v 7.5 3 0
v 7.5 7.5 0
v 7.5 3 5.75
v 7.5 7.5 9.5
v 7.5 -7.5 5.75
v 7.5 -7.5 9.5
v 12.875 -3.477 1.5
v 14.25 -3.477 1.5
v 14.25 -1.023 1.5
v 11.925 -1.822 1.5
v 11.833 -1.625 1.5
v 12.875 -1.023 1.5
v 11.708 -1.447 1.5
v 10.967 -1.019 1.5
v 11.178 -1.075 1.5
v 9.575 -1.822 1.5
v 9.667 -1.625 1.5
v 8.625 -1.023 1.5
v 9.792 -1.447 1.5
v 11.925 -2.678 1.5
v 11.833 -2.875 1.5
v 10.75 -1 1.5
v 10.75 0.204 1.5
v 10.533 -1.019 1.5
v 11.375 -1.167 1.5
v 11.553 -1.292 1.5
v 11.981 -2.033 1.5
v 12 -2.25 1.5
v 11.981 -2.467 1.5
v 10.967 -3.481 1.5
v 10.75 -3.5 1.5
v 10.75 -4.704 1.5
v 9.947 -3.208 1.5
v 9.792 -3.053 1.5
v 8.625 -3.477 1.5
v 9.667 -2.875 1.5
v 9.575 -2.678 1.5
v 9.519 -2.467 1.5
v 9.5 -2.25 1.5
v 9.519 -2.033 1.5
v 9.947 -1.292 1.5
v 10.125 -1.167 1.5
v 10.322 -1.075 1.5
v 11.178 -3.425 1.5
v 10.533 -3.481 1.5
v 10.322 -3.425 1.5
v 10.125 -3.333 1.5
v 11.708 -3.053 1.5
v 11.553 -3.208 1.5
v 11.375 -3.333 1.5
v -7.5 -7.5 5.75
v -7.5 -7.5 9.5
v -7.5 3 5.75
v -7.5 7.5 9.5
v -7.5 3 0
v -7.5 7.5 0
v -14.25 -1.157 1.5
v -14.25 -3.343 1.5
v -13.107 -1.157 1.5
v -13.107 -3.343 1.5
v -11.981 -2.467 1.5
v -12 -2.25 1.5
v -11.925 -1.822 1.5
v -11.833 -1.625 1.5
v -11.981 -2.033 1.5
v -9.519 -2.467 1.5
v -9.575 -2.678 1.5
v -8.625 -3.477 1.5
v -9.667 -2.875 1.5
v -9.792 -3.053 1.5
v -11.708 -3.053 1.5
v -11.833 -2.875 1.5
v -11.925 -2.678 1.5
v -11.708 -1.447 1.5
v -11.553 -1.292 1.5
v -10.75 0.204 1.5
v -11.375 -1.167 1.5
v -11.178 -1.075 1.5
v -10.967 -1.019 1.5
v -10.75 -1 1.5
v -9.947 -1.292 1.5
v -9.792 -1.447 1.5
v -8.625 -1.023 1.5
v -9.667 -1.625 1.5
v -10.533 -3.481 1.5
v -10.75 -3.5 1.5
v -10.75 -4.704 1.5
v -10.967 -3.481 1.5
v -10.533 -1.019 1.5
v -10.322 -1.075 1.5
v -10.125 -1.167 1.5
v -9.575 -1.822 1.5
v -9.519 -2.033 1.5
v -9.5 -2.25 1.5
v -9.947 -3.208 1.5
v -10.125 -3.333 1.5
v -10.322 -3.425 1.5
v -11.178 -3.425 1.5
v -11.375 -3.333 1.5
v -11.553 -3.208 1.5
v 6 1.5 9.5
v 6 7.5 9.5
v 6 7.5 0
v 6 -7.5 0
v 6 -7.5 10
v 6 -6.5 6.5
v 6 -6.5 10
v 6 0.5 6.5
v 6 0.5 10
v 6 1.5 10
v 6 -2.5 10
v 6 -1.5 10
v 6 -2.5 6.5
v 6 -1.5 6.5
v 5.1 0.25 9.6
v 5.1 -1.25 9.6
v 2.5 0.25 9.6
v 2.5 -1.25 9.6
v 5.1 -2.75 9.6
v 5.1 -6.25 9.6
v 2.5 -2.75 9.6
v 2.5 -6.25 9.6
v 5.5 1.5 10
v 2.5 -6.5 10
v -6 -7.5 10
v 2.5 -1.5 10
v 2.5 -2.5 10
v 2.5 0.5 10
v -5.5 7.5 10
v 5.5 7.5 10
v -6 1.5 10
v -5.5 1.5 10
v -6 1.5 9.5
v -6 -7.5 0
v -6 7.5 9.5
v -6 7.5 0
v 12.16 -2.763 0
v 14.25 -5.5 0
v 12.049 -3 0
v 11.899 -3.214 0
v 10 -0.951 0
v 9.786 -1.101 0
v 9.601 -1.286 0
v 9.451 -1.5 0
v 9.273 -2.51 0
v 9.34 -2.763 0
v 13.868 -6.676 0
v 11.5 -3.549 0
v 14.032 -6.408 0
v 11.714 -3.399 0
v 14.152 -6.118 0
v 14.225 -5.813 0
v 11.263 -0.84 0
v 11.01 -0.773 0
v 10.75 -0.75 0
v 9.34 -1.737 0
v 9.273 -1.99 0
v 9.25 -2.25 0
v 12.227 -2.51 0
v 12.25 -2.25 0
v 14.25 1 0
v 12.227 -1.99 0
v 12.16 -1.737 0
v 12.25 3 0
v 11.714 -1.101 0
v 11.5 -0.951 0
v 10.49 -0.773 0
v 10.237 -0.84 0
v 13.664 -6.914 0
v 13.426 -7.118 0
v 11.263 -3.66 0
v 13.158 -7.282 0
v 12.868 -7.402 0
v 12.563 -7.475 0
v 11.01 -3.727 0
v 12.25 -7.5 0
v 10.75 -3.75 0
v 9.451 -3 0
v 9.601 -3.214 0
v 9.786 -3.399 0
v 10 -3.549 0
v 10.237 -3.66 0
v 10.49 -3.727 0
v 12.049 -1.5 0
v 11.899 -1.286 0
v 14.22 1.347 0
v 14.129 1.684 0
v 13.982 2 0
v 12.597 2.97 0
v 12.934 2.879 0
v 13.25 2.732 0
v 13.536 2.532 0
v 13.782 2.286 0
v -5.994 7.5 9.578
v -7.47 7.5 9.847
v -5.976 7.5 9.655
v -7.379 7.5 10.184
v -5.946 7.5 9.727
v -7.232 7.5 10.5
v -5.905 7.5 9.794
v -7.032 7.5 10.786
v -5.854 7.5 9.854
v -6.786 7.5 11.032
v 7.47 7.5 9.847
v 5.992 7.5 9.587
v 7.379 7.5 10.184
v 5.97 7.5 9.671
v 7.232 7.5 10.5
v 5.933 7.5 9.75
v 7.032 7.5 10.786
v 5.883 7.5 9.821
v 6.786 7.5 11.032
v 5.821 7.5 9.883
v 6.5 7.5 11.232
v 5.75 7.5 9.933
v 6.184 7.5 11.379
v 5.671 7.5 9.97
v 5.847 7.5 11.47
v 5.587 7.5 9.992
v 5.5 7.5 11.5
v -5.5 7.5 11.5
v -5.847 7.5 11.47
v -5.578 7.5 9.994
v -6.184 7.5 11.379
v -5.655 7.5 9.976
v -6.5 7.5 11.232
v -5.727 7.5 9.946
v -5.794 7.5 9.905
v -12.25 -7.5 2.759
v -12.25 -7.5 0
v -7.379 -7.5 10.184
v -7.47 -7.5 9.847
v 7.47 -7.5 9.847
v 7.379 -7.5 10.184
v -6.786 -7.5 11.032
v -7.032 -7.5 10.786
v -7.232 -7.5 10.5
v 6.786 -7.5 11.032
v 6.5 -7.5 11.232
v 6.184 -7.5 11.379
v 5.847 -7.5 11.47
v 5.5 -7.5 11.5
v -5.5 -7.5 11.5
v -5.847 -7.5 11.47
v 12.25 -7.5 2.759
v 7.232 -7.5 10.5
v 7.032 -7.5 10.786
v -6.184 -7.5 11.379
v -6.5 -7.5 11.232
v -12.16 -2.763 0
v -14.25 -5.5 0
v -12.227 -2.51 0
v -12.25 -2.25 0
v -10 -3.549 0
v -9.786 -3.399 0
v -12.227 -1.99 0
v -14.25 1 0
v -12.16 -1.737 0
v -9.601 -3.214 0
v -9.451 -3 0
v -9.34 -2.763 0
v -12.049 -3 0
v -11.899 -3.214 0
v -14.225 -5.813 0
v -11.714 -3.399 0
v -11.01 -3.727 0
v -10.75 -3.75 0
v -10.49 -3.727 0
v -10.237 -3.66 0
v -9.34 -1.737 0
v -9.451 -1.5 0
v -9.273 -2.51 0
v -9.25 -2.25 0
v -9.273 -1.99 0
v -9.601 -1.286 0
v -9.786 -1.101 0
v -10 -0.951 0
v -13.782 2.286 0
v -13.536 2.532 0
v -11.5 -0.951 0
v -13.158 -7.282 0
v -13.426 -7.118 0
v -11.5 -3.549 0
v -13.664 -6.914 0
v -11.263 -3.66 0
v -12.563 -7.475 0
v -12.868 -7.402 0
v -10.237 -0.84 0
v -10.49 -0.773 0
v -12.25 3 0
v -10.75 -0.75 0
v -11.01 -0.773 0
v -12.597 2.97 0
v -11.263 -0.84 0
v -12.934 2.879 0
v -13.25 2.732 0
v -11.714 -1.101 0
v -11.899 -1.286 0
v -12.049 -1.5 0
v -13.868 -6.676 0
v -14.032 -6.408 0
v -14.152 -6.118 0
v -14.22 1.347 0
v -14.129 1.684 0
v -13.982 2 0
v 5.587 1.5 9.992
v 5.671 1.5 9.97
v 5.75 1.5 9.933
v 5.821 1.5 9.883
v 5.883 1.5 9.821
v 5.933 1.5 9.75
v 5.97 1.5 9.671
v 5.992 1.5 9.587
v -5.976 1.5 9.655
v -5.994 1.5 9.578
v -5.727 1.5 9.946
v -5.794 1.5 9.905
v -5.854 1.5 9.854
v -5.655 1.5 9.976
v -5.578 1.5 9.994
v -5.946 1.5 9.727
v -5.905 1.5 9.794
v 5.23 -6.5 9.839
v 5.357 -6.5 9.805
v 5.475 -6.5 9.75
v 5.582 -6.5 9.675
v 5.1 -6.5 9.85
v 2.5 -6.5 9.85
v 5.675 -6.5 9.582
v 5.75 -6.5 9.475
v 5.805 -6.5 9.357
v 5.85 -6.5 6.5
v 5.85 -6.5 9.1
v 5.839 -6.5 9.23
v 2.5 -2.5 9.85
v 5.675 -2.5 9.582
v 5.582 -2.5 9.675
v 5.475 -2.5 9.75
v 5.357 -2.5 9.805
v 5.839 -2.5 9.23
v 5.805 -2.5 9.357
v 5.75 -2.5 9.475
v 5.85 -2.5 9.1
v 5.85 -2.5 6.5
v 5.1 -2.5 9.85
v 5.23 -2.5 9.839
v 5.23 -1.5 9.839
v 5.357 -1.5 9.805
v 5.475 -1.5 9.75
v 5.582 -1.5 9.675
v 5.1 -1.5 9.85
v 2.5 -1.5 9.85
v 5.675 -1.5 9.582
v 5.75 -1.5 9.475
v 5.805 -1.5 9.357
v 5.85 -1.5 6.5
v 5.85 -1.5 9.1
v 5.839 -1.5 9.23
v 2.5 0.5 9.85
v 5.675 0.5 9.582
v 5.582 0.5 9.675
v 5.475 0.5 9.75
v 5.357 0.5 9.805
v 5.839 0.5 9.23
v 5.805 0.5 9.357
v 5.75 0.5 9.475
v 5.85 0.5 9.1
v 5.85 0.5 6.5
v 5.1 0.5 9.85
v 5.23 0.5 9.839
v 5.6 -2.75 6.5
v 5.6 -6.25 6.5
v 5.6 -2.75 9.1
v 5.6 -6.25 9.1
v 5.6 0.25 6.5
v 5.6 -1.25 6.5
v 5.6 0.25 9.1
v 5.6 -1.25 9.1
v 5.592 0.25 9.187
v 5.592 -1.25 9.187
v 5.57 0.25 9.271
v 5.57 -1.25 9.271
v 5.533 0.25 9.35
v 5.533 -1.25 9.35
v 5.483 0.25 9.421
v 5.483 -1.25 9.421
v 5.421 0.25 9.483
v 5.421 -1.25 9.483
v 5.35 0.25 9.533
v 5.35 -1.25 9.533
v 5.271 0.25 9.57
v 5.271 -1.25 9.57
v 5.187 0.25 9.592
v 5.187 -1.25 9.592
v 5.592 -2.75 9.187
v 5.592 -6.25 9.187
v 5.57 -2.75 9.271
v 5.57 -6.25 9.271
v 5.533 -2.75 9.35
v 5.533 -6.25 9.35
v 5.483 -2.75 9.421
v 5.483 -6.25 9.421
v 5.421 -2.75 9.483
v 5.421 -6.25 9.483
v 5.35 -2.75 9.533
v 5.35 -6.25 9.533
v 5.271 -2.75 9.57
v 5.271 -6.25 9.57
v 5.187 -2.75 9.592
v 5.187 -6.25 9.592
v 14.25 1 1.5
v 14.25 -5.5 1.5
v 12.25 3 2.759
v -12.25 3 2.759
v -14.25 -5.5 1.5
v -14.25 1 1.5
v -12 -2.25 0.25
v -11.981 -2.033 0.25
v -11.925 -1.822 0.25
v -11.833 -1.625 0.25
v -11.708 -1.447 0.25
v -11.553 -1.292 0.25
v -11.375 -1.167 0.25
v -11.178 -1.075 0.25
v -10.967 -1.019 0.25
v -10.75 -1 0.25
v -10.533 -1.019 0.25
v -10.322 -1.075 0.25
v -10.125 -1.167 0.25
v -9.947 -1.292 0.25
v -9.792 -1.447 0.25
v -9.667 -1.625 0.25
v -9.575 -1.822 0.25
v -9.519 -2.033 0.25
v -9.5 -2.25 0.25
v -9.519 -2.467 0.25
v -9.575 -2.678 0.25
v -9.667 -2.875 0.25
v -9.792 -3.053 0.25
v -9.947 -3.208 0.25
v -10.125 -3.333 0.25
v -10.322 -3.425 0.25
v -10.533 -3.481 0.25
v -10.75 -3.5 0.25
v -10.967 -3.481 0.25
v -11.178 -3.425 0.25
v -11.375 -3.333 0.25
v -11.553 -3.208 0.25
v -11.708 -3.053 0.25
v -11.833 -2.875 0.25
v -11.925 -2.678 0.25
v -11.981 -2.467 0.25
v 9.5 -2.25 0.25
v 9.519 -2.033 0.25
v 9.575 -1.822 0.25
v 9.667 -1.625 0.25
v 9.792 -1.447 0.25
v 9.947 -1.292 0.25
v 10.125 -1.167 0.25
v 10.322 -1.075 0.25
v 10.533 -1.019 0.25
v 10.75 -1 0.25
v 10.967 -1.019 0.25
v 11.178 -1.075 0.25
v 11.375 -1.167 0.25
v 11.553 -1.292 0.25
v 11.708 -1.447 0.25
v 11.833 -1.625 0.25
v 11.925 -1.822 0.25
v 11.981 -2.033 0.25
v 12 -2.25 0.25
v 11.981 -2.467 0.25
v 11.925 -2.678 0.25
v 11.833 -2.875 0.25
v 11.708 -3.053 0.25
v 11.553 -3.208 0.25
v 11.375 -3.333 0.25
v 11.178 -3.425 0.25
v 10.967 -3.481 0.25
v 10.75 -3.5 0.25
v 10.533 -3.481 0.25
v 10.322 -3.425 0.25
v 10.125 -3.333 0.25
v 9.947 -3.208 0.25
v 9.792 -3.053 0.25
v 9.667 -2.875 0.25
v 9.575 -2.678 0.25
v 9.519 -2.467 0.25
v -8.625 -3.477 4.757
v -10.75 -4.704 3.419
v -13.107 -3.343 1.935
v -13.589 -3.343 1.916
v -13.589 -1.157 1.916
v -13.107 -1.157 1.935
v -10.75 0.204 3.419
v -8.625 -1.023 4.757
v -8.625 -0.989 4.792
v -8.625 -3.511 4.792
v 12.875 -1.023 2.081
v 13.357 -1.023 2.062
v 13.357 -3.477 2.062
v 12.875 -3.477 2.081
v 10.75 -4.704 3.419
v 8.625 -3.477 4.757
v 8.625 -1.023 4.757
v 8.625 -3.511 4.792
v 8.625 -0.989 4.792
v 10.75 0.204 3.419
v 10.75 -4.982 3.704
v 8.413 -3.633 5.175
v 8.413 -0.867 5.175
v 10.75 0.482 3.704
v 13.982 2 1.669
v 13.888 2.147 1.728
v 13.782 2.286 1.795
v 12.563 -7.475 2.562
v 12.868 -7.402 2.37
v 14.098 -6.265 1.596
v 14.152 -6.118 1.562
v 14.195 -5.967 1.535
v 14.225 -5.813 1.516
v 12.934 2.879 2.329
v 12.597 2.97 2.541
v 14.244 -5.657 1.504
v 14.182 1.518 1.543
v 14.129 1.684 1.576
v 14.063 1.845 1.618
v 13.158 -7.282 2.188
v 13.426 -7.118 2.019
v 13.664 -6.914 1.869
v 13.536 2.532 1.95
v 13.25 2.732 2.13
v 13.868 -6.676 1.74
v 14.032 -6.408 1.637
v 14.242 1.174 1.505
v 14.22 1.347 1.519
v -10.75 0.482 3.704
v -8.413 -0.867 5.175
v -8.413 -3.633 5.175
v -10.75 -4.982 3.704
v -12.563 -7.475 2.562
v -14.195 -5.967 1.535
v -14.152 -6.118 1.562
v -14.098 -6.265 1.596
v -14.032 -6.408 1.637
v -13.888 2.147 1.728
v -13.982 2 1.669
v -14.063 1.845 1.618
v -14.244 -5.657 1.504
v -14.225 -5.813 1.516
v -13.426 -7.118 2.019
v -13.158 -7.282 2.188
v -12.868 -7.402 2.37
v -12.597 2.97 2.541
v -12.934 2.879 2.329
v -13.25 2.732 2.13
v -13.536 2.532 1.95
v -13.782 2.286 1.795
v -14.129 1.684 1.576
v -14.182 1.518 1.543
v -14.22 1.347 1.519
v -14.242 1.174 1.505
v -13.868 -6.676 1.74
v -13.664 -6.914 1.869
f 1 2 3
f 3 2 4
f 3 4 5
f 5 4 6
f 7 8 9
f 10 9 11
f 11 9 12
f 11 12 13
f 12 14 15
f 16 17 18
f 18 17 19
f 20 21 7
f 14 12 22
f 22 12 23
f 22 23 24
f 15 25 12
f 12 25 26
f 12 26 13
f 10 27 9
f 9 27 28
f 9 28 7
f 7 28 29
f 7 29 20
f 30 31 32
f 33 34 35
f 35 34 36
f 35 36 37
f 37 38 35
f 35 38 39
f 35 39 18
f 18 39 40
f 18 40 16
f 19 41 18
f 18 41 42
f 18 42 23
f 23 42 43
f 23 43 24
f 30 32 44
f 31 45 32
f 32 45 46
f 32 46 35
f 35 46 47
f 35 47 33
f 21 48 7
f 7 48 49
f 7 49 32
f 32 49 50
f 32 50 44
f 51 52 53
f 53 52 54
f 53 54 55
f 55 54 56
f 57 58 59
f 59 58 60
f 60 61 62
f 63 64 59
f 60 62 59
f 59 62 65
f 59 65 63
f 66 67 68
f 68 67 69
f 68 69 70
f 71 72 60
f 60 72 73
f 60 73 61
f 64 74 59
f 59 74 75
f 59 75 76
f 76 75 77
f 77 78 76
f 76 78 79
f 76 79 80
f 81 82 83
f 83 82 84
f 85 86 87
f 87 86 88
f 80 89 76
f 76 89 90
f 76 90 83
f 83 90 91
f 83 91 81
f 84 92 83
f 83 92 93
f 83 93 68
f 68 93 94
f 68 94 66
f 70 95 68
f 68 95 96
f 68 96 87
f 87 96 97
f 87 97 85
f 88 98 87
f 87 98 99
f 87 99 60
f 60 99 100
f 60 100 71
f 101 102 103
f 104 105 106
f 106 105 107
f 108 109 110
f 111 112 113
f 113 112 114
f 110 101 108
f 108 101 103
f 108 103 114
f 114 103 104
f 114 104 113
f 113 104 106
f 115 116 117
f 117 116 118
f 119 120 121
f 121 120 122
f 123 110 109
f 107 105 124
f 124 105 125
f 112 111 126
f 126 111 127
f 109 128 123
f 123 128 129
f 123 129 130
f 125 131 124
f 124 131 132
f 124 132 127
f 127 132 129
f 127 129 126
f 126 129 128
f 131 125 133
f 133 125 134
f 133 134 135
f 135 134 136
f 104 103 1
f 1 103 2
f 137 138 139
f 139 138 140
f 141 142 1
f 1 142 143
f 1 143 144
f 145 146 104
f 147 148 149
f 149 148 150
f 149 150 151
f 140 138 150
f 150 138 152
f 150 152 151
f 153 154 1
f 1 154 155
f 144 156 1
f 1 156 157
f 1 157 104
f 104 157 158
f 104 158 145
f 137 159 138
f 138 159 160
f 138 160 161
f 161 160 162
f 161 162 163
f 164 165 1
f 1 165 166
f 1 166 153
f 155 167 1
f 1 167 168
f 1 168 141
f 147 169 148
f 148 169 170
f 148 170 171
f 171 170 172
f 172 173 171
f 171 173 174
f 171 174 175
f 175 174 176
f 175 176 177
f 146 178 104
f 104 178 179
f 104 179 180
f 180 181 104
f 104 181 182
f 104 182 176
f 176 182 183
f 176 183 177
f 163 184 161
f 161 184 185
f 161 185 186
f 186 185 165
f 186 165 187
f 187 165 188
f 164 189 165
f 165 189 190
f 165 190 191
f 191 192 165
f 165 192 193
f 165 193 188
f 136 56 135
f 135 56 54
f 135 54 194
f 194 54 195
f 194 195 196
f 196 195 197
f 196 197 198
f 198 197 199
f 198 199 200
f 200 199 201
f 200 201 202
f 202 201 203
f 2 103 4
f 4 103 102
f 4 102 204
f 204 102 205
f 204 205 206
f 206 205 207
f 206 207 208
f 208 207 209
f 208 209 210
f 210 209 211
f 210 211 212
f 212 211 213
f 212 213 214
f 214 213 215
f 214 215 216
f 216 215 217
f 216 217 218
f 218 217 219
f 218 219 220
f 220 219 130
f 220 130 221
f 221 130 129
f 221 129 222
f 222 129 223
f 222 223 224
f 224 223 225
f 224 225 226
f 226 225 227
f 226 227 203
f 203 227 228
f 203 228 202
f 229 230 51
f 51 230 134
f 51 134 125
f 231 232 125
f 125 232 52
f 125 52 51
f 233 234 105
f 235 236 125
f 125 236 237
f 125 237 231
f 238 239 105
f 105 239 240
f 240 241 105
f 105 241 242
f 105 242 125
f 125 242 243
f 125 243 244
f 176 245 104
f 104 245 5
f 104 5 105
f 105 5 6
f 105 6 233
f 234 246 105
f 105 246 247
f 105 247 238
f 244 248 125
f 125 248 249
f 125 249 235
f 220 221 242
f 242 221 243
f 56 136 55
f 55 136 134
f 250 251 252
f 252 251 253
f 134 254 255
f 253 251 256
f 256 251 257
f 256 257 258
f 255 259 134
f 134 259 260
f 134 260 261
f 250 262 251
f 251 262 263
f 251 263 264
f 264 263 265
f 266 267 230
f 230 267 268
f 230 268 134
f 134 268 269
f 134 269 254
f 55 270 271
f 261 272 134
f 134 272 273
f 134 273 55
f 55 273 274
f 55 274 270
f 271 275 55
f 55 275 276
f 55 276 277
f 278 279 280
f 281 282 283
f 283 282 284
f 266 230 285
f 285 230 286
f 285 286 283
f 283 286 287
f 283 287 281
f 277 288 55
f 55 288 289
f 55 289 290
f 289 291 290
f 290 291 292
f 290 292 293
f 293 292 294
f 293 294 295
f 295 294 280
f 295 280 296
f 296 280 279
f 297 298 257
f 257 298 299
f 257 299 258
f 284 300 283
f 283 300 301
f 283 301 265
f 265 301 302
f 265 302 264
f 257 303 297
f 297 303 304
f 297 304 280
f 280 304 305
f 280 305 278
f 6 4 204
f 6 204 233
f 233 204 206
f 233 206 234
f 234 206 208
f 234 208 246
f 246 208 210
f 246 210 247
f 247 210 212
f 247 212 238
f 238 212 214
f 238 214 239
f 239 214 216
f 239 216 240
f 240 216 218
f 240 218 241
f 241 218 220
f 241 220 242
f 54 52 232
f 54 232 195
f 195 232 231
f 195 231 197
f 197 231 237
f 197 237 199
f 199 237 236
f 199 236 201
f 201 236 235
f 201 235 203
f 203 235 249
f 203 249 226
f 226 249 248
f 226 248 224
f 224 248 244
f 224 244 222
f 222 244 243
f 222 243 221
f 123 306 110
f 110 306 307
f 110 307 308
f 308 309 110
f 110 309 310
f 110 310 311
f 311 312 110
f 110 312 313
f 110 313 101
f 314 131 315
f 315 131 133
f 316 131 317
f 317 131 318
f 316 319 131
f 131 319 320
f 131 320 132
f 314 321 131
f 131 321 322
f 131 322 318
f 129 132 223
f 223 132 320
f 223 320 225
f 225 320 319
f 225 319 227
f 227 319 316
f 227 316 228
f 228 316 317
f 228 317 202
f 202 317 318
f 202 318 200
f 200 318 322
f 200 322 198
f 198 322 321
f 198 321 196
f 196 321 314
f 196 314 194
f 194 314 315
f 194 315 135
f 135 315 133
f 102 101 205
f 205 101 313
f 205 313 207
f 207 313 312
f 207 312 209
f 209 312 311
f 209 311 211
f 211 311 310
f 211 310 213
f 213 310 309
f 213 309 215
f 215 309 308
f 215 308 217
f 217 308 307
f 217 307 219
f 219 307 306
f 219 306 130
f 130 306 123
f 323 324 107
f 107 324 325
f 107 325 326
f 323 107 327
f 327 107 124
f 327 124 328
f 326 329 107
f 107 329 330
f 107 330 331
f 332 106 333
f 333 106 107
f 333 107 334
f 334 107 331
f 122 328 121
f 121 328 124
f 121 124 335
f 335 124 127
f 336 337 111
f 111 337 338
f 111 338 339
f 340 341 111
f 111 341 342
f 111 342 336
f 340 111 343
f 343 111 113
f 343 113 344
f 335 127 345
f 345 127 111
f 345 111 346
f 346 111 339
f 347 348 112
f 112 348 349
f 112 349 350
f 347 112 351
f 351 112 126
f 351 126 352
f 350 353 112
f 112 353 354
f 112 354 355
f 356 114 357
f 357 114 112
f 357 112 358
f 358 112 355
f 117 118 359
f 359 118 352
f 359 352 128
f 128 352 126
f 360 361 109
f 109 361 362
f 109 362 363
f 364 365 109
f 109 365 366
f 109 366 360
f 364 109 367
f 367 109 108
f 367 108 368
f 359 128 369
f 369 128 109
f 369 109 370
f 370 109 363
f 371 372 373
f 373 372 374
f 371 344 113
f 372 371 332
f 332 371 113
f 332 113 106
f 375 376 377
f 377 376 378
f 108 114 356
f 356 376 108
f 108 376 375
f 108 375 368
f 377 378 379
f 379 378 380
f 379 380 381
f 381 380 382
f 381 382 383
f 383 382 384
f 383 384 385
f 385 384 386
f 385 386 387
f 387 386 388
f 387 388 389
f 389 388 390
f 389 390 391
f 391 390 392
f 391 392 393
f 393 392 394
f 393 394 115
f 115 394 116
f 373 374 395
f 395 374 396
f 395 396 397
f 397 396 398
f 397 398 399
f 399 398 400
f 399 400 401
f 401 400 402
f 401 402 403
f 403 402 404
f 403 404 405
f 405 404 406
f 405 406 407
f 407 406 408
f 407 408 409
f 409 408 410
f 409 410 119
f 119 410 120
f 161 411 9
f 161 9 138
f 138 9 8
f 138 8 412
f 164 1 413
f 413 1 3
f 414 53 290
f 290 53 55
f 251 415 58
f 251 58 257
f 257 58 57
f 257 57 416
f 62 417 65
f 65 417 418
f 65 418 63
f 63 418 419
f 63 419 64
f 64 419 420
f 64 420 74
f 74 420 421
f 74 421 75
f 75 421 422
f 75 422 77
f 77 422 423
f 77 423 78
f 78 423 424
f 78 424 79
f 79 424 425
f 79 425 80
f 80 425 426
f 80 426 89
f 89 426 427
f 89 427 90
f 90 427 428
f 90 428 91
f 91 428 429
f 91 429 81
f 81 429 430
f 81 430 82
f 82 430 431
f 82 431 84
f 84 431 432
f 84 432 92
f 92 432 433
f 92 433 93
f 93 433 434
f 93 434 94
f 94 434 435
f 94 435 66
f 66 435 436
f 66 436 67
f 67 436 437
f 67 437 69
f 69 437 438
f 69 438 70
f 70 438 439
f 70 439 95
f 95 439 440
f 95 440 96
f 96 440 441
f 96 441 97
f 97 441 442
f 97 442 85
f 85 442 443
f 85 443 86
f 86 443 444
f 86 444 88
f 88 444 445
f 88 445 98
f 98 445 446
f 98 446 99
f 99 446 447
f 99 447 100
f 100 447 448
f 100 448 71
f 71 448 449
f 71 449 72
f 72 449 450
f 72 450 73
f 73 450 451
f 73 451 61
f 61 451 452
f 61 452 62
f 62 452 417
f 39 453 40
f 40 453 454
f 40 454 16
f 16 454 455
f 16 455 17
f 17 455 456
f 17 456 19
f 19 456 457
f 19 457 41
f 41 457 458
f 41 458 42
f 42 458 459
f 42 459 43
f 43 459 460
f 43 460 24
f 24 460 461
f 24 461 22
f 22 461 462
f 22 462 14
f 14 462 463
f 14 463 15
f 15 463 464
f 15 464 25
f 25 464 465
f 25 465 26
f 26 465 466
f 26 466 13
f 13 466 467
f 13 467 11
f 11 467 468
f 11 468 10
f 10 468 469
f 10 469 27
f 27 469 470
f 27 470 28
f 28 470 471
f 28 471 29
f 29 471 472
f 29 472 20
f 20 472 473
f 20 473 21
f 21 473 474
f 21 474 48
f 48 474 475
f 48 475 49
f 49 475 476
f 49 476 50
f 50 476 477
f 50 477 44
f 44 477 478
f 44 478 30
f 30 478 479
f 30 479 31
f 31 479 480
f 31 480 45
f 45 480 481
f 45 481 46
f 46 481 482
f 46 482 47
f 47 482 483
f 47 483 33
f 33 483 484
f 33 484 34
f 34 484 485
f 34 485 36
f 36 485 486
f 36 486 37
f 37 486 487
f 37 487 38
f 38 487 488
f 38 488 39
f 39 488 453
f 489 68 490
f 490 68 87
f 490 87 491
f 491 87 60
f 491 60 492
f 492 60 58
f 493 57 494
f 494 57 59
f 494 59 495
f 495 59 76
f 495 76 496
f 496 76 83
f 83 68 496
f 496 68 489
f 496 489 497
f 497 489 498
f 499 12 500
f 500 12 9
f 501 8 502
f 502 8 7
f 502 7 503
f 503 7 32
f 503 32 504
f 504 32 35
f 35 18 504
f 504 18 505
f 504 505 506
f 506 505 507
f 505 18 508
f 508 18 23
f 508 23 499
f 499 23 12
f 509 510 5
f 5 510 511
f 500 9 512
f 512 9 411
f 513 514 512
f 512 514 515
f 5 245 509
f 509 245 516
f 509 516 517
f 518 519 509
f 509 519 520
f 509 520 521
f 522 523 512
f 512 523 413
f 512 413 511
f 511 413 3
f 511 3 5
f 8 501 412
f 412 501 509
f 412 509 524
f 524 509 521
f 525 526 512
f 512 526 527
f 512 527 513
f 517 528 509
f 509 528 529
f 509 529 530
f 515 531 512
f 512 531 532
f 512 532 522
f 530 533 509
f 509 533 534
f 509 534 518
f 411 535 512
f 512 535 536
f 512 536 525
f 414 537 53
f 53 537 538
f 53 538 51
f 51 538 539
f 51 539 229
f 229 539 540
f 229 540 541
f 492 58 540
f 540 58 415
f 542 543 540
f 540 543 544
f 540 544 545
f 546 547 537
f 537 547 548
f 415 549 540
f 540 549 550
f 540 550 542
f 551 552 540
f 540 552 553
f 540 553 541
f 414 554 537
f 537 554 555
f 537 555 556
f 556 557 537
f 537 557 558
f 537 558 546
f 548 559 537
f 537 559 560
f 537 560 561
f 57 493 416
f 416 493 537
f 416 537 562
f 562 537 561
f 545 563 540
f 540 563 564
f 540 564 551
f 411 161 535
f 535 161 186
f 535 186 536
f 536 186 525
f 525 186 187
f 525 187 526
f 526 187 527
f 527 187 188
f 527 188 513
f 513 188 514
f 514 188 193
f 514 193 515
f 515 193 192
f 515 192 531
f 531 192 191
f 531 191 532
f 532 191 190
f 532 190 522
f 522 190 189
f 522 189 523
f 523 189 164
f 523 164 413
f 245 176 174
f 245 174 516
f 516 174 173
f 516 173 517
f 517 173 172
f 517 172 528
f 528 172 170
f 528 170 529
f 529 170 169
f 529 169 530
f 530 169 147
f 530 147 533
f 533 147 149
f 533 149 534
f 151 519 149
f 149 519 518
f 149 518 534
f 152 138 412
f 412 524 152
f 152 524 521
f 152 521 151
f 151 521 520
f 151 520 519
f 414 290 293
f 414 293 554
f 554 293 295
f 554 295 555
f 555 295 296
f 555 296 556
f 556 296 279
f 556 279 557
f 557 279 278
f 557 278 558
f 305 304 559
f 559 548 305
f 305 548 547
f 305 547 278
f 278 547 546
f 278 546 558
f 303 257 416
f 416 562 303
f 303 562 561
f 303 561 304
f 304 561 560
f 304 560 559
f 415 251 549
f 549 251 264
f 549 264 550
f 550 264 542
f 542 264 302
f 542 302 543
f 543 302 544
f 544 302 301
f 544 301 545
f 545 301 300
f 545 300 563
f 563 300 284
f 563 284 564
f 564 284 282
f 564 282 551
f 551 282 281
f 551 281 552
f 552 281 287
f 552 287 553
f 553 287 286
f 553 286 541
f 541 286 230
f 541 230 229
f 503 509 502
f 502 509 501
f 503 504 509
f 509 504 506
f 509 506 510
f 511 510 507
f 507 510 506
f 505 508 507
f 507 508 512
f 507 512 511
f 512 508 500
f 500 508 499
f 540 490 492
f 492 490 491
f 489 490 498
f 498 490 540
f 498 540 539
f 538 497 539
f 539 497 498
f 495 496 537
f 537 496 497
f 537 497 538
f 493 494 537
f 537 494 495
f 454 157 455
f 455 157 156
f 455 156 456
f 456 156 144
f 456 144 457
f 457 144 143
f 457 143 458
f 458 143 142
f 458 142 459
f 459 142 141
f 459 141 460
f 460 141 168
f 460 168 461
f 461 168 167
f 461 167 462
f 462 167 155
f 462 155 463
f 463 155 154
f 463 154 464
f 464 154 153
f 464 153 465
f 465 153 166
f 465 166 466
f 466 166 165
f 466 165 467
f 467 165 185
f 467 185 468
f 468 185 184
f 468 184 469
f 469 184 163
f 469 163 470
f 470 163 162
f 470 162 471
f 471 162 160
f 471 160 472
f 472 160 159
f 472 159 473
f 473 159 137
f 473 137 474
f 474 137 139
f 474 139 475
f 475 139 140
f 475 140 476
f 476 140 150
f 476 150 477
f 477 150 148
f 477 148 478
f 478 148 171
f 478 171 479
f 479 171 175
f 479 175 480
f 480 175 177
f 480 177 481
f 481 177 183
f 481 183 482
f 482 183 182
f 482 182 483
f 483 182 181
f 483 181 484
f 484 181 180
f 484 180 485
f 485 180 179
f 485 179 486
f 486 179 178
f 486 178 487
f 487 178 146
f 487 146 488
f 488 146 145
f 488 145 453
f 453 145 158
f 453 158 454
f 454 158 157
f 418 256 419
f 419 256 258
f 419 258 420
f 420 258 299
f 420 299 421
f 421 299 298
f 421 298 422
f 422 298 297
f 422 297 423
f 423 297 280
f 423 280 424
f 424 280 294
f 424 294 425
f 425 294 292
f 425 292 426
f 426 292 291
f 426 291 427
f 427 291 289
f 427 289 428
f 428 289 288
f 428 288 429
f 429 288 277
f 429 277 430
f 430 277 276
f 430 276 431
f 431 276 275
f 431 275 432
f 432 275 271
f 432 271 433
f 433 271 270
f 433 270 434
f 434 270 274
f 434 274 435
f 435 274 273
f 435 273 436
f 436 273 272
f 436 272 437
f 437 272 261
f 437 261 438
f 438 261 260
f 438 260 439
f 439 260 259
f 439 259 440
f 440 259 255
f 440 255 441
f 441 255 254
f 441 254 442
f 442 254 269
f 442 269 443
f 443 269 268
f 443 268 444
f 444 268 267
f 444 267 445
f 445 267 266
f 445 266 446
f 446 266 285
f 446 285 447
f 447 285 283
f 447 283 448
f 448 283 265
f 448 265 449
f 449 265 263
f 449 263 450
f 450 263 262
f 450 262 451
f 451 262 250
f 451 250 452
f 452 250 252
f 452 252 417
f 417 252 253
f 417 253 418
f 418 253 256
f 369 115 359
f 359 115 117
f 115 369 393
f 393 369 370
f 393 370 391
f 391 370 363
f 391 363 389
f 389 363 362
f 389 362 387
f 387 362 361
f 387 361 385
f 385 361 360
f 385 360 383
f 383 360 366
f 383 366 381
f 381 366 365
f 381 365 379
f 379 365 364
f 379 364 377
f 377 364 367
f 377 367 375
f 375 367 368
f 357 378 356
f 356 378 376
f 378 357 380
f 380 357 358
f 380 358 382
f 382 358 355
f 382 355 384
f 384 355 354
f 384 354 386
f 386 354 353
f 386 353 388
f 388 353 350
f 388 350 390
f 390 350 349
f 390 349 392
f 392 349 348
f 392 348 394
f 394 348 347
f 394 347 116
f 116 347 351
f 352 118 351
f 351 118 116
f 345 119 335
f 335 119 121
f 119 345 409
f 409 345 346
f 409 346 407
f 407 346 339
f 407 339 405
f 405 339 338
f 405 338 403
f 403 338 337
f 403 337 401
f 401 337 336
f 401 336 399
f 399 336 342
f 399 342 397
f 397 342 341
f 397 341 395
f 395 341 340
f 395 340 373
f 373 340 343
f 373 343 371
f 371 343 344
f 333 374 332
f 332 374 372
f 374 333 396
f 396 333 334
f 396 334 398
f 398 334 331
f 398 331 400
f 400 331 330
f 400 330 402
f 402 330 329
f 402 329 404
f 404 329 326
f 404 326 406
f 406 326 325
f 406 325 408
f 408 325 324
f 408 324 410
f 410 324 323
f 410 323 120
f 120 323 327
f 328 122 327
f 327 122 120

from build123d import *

# Parameters (mm, degrees)
ESQUISSE1_W             = 15
ESQUISSE1_H             = 15
BOSS_EXTRU_1_DEPTH      = 11.5
ESQUISSE2_W             = 12
ESQUISSE2_H             = 15
ENL_V_MAT_EXTRU_1_DEPTH = 10
CONG_1_R                = 2
ESQUISSE3_W             = 0.5
ESQUISSE3_H             = 6
BOSS_EXTRU_2_DEPTH      = 0.5
ENL_V_MAT_EXTRU_2_DEPTH = 6
ESQUISSE5_W             = 3.5
ESQUISSE5_H             = 4
ESQUISSE5_H_2           = 2
BOSS_EXTRU_3_DEPTH      = 0.4
ESQUISSE6_W             = 0.4
ESQUISSE6_H             = 4
ESQUISSE6_H_2           = 2
BOSS_EXTRU_4_DEPTH      = 3.1
CONG_3_R                = 0.5
ESQUISSE7_W             = 6.75
ESQUISSE7_H             = 10.5
BOSS_EXTRU_5_DEPTH      = 1.5
ESQUISSE12_R            = 1.25
ENL_V_MAT_EXTRU_6_DEPTH = 1.5
BOSS_EXTRU_6_DEPTH      = 4.25
ENL_V_MAT_EXTRU_7_DEPTH = 10.5
CONG_5_R                = 2
CHANFREIN2_SIZE         = 0.25
CHANFREIN3_SIZE         = 0.25
CHANFREIN4_SIZE         = 0.25


with BuildPart() as part:
    # Esquisse1 → Boss.-Extru.1 (new body)
    with BuildSketch(Plane.XY):
        Rectangle(ESQUISSE1_W, ESQUISSE1_H)
    extrude(amount=BOSS_EXTRU_1_DEPTH)

    # Esquisse2 → Enlèv. mat.-Extru.1 (cut)
    with BuildSketch(Plane(origin=(0, 0, 0), x_dir=(-1, 0, 0), z_dir=(0, 0, -1))):
        Rectangle(ESQUISSE2_W, ESQUISSE2_H)
    extrude(amount=-ENL_V_MAT_EXTRU_1_DEPTH, mode=Mode.SUBTRACT)

    # Congé1
    cong_1_edges = [part.edges().sort_by_distance(p)[0] for p in [
        (-7.5, 0, 11.5),
        (7.5, 0, 11.5),
    ]]
    fillet(cong_1_edges, radius=CONG_1_R)

    # Esquisse3 → Boss.-Extru.2 (add)
    with BuildSketch(Plane(origin=(0, 0, 10), x_dir=(-1, 0, 0), z_dir=(0, 0, -1))):
        with Locations((-5.75, 4.5)):
            Rectangle(ESQUISSE3_W, ESQUISSE3_H)
        with Locations((5.75, 4.5)):
            Rectangle(ESQUISSE3_W, ESQUISSE3_H)
    extrude(amount=BOSS_EXTRU_2_DEPTH)

    # Esquisse4 → Enlèv. mat.-Extru.2 (cut)
    with BuildSketch(Plane.XZ.offset(-1.5)):
        with BuildLine():
            Line((-6, 9.5), (-5.5, 9.5))
            Line((-5.5, 9.5), (-5.5, 10))
            ThreePointArc((-5.5, 10), (-5.853553391, 9.853553391), (-6, 9.5))
        make_face()
        with BuildLine():
            Line((6, 9.5), (5.5, 9.5))
            Line((5.5, 9.5), (5.5, 10))
            ThreePointArc((5.5, 10), (5.853553391, 9.853553391), (6, 9.5))
        make_face()
    extrude(amount=-ENL_V_MAT_EXTRU_2_DEPTH, mode=Mode.SUBTRACT)

    # Esquisse5 → Boss.-Extru.3 (add)
    with BuildSketch(Plane(origin=(0, 0, 10), x_dir=(-1, 0, 0), z_dir=(0, 0, -1))):
        with Locations((-4.25, -4.5)):
            Rectangle(ESQUISSE5_W, ESQUISSE5_H)
        with Locations((-4.25, -0.5)):
            Rectangle(ESQUISSE5_W, ESQUISSE5_H_2)
    extrude(amount=BOSS_EXTRU_3_DEPTH)

    # Esquisse6 → Boss.-Extru.4 (add)
    with BuildSketch(Plane(origin=(0, 0, 9.6), x_dir=(-1, 0, 0), z_dir=(0, 0, -1))):
        with Locations((-5.8, -4.5)):
            Rectangle(ESQUISSE6_W, ESQUISSE6_H)
        with Locations((-5.8, -0.5)):
            Rectangle(ESQUISSE6_W, ESQUISSE6_H_2)
    extrude(amount=BOSS_EXTRU_4_DEPTH)

    # Congé3
    cong_3_edges = [part.edges().sort_by_distance(p)[0] for p in [
        (5.6, -4.5, 9.6),
        (5.6, -0.5, 9.6),
    ]]
    fillet(cong_3_edges, radius=CONG_3_R)

    # Esquisse7 → Boss.-Extru.5 (add)
    with BuildSketch(Plane(origin=(0, 0, 0), x_dir=(-1, 0, 0), z_dir=(0, 0, -1))):
        with Locations((-10.875, -2.25)):
            Rectangle(ESQUISSE7_W, ESQUISSE7_H)
        with Locations((10.875, -2.25)):
            Rectangle(ESQUISSE7_W, ESQUISSE7_H)
    extrude(amount=-BOSS_EXTRU_5_DEPTH)

    # Esquisse12 → Enlèv. mat.-Extru.6 (cut)
    with BuildSketch(Plane(origin=(0, 0, 0), x_dir=(-1, 0, 0), z_dir=(0, 0, -1))):
        with Locations((10.75, -2.25)):
            Circle(ESQUISSE12_R)
        with Locations((-10.75, -2.25)):
            Circle(ESQUISSE12_R)
    extrude(amount=-ENL_V_MAT_EXTRU_6_DEPTH, mode=Mode.SUBTRACT)

    # Esquisse13 → Boss.-Extru.6 (add)
    with BuildSketch(Plane.XY.offset(1.5)):
        Polygon((-7.5, 3), (-7.5, -7.5), (-14.25, -7.5), (-14.25, -3.342912687), (-13.107019699, -3.342912687), (-10.75, -4.703738644), (-8.625, -3.476869322), (-8.625, -1.023130678), (-10.75, 0.203738644), (-13.107019699, -1.157087313), (-14.25, -1.157087313), (-14.25, 3), align=None)
        Polygon((7.5, -7.5), (7.5, 3), (14.25, 3), (14.25, -1.023130678), (12.875, -1.023130678), (10.75, 0.203738644), (8.625, -1.023130678), (8.625, -3.476869322), (10.75, -4.703738644), (12.875, -3.476869322), (14.25, -3.476869322), (14.25, -7.5), align=None)
    extrude(amount=BOSS_EXTRU_6_DEPTH)

    # Esquisse14 → Enlèv. mat.-Extru.7 (cut)
    with BuildSketch(Plane.XZ.offset(7.5)):
        Polygon((-7.5, 5.75), (-14.25, 1.5), (-14.25, 5.75), align=None)
        Polygon((7.5, 5.75), (14.25, 1.5), (14.25, 5.75), align=None)
    extrude(amount=-ENL_V_MAT_EXTRU_7_DEPTH, mode=Mode.SUBTRACT)

    # Congé5
    cong_5_edges = [part.edges().sort_by_distance(p)[0] for p in [
        (-14.25, -7.5, 0.75),
        (-14.25, 3, 0.75),
        (14.25, 3, 0.75),
        (14.25, -7.5, 0.75),
    ]]
    fillet(cong_5_edges, radius=CONG_5_R)

    # Chanfrein2
    chanfrein2_edges = [part.edges().sort_by_distance(p)[0] for p in [
        (-11.928509849, -4.023325665, 2.961678984),
        (-9.6875, -4.090303983, 4.372685185),
        (-8.625, -2.25, 5.041666667),
        (-9.6875, -0.409696017, 4.372685185),
        (-11.928509849, -0.476674335, 2.961678984),
        (11.8125, -0.409696017, 3.034722222),
        (9.6875, -0.409696017, 4.372685185),
        (8.625, -2.25, 5.041666667),
        (9.6875, -4.090303983, 4.372685185),
        (11.8125, -4.090303983, 3.034722222),
    ]]
    chamfer(chanfrein2_edges, length=CHANFREIN2_SIZE)

    # Chanfrein3
    chanfrein3_edges = [part.edges().sort_by_distance(p)[0] for p in [
        (-9.5, -2.25, 0),
        (12, -2.25, 0),
    ]]
    chamfer(chanfrein3_edges, length=CHANFREIN3_SIZE)

    # Chanfrein4
    chanfrein4_edges = [part.edges().sort_by_distance(p)[0] for p in [
        (3.8, 0.5, 9.6),
        (5.6, -6.5, 7.8),
        (5.6, -2.5, 7.8),
        (5.6, -1.5, 7.8),
        (5.6, 0.5, 7.8),
        (3.8, -1.5, 9.6),
        (3.8, -6.5, 9.6),
        (5.453553391, 0.5, 9.453553391),
        (5.453553391, -1.5, 9.453553391),
        (5.453553391, -2.5, 9.453553391),
        (5.453553391, -6.5, 9.453553391),
        (3.8, -2.5, 9.6),
    ]]
    chamfer(chanfrein4_edges, length=CHANFREIN4_SIZE)


solid = part.part
